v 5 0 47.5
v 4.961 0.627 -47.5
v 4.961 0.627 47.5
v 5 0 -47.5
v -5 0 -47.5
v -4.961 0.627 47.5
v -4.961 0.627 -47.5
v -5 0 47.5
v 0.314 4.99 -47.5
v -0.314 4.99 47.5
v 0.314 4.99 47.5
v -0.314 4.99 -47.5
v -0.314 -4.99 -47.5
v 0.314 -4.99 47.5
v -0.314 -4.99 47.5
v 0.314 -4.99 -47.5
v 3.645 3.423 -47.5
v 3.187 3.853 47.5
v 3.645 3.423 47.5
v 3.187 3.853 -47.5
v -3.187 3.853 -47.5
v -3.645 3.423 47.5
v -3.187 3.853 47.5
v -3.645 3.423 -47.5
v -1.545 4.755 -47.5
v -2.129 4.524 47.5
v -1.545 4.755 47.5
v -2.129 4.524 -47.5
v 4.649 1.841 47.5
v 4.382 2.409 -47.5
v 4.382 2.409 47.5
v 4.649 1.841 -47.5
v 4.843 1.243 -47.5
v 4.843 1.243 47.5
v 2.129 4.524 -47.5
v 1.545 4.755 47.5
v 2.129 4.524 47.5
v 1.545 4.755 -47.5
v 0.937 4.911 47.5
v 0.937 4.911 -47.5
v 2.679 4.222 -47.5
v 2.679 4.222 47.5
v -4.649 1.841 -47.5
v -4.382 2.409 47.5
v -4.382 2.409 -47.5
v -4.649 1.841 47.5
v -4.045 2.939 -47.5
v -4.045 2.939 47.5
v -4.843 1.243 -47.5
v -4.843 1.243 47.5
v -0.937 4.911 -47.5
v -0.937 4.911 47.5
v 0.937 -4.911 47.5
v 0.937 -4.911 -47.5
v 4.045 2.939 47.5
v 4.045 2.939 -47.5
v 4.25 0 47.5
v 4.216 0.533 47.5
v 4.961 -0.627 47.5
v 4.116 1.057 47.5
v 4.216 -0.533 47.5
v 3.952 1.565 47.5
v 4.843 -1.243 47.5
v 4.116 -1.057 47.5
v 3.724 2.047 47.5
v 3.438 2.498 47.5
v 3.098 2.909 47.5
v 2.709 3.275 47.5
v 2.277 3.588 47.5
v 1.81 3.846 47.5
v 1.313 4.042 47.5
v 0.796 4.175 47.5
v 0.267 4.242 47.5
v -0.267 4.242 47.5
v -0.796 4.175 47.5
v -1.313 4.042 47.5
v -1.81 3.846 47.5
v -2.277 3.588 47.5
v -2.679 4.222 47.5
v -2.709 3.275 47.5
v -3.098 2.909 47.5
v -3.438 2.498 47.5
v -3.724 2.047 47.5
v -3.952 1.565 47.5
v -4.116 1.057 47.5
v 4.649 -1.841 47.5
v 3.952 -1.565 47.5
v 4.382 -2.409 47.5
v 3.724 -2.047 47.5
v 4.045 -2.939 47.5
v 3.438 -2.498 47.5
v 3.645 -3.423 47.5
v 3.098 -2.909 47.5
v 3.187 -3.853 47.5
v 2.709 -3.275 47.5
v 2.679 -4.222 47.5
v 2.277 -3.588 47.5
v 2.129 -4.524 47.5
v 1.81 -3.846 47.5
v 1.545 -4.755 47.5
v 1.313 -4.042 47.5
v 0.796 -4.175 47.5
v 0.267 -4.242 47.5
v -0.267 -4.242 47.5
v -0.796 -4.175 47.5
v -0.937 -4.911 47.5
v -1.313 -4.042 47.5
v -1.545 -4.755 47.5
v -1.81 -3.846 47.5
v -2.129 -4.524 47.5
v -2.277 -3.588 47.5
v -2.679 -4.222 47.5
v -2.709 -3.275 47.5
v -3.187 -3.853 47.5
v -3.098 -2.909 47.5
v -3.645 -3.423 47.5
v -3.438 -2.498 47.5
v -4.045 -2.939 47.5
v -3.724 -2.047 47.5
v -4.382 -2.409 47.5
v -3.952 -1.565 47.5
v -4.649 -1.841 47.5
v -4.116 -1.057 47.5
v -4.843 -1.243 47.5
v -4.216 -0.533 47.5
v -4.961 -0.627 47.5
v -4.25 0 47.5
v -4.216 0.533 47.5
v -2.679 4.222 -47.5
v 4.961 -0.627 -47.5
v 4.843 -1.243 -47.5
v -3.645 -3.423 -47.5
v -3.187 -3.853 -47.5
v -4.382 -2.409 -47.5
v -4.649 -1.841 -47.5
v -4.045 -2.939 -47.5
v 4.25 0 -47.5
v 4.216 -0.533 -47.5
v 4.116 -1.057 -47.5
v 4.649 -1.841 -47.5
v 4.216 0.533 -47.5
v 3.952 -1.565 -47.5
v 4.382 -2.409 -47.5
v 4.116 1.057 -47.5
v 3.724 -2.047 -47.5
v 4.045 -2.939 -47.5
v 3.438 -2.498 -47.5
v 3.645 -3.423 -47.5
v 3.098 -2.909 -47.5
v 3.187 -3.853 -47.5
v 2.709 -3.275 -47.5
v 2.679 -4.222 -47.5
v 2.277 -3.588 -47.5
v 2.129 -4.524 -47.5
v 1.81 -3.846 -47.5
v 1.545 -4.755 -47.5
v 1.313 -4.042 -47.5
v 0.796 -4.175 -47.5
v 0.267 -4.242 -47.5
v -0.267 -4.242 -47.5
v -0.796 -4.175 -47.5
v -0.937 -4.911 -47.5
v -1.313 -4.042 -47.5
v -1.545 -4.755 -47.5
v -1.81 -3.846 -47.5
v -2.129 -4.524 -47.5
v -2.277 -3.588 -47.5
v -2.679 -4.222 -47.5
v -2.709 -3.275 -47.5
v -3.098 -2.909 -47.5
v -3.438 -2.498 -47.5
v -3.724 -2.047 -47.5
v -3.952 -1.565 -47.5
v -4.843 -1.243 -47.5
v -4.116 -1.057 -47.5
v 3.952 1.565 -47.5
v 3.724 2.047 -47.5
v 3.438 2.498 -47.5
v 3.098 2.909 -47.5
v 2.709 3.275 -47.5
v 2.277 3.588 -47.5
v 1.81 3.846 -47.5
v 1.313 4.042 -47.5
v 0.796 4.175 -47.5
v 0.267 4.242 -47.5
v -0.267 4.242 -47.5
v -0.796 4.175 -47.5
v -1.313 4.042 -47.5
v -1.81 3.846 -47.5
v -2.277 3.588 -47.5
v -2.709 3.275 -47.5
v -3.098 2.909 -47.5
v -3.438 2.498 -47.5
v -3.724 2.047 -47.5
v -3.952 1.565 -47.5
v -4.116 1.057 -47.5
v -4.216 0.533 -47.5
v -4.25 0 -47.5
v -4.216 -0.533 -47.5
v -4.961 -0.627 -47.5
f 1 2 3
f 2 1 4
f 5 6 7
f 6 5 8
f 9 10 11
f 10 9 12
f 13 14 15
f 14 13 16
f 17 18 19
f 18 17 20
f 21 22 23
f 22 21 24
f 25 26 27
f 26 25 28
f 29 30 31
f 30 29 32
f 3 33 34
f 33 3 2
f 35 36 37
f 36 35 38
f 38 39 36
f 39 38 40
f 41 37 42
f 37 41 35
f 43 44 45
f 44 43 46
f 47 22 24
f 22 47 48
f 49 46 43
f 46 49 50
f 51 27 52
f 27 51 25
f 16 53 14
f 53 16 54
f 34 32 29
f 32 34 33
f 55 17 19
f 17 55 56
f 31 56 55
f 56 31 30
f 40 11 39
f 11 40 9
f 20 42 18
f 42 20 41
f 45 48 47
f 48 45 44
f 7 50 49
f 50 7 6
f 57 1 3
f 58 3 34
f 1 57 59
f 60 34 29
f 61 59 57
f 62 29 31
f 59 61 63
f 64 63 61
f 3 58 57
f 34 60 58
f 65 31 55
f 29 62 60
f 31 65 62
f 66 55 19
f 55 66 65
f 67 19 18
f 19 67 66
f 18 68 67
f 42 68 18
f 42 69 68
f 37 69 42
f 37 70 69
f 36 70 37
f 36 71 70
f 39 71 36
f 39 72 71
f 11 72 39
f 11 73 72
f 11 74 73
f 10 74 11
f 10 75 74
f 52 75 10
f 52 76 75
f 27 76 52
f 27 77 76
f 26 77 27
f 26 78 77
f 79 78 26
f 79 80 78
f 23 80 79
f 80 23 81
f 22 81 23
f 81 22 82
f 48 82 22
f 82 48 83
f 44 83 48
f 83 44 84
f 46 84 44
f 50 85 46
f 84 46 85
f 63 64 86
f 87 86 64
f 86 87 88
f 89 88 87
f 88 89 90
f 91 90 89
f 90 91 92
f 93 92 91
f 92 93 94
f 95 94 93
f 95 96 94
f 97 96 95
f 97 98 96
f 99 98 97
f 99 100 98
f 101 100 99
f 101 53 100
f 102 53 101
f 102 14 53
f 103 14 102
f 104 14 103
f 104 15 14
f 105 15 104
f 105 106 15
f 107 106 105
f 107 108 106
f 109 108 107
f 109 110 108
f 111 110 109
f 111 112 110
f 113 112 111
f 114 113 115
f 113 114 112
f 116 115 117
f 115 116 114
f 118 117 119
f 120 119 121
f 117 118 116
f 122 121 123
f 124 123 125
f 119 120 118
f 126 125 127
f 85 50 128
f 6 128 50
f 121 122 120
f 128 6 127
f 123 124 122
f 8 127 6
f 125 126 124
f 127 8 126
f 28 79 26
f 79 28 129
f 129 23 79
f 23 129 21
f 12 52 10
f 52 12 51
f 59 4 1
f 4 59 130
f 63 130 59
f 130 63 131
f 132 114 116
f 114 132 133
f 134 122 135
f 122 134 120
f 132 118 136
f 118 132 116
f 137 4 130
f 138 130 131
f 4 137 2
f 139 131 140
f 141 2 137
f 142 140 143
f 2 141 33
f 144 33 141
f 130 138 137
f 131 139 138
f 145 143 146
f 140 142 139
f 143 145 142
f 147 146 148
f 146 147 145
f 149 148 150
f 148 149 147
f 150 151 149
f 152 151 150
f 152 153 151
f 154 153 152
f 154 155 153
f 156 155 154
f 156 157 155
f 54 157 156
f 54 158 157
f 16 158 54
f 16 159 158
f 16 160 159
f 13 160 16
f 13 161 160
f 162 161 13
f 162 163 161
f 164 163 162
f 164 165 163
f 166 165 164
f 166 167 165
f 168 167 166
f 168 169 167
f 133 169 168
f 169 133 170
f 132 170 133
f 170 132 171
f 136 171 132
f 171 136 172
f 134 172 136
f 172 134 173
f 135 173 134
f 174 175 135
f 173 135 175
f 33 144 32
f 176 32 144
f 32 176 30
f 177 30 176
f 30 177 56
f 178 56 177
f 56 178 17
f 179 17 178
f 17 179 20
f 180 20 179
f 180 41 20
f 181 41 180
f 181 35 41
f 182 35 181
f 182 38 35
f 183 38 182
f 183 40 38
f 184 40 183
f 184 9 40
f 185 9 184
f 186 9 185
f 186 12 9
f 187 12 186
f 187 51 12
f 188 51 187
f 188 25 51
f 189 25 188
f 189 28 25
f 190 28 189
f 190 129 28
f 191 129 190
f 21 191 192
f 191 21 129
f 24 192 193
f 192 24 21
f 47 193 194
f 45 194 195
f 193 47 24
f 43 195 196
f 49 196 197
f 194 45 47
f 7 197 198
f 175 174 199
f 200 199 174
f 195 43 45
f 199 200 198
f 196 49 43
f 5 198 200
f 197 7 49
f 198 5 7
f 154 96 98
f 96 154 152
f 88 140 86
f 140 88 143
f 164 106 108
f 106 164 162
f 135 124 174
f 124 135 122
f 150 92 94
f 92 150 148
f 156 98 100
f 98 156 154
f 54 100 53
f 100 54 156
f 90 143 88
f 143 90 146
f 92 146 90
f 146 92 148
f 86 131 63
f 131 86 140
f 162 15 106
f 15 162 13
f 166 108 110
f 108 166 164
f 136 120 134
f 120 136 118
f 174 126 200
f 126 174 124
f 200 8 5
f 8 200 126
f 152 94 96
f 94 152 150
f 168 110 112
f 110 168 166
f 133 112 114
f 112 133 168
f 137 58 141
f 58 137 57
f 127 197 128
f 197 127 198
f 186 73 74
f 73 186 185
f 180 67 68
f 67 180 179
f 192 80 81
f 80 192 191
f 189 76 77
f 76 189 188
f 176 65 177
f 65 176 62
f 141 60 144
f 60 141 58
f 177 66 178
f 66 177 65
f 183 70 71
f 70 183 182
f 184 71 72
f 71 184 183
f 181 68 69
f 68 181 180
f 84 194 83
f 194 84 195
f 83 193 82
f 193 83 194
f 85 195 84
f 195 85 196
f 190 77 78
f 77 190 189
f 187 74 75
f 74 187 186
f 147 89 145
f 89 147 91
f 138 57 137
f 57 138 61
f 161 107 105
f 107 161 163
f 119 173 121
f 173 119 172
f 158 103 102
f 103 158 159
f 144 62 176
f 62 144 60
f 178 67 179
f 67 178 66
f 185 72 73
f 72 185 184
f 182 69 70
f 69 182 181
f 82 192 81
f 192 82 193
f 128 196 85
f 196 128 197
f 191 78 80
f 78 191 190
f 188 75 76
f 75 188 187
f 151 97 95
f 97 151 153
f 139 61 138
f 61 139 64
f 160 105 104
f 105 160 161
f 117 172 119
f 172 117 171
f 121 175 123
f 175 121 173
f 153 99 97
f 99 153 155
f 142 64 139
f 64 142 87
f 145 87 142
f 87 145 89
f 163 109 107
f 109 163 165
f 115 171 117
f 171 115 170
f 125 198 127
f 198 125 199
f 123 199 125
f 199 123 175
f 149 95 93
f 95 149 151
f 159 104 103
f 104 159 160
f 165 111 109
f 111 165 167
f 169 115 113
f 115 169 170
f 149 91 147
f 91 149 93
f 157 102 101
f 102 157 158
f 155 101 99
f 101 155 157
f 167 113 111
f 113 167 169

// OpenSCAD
$fn = 50;


difference() {
	union() {
		translate(v = [0, 0, -47.5000000000]) {
			cylinder(h = 95, r = 5.0000000000);
		}
	}
	union() {
		translate(v = [0, 0, -100.0000000000]) {
			cylinder(h = 200, r = 4.2500000000);
		}
	}
}
